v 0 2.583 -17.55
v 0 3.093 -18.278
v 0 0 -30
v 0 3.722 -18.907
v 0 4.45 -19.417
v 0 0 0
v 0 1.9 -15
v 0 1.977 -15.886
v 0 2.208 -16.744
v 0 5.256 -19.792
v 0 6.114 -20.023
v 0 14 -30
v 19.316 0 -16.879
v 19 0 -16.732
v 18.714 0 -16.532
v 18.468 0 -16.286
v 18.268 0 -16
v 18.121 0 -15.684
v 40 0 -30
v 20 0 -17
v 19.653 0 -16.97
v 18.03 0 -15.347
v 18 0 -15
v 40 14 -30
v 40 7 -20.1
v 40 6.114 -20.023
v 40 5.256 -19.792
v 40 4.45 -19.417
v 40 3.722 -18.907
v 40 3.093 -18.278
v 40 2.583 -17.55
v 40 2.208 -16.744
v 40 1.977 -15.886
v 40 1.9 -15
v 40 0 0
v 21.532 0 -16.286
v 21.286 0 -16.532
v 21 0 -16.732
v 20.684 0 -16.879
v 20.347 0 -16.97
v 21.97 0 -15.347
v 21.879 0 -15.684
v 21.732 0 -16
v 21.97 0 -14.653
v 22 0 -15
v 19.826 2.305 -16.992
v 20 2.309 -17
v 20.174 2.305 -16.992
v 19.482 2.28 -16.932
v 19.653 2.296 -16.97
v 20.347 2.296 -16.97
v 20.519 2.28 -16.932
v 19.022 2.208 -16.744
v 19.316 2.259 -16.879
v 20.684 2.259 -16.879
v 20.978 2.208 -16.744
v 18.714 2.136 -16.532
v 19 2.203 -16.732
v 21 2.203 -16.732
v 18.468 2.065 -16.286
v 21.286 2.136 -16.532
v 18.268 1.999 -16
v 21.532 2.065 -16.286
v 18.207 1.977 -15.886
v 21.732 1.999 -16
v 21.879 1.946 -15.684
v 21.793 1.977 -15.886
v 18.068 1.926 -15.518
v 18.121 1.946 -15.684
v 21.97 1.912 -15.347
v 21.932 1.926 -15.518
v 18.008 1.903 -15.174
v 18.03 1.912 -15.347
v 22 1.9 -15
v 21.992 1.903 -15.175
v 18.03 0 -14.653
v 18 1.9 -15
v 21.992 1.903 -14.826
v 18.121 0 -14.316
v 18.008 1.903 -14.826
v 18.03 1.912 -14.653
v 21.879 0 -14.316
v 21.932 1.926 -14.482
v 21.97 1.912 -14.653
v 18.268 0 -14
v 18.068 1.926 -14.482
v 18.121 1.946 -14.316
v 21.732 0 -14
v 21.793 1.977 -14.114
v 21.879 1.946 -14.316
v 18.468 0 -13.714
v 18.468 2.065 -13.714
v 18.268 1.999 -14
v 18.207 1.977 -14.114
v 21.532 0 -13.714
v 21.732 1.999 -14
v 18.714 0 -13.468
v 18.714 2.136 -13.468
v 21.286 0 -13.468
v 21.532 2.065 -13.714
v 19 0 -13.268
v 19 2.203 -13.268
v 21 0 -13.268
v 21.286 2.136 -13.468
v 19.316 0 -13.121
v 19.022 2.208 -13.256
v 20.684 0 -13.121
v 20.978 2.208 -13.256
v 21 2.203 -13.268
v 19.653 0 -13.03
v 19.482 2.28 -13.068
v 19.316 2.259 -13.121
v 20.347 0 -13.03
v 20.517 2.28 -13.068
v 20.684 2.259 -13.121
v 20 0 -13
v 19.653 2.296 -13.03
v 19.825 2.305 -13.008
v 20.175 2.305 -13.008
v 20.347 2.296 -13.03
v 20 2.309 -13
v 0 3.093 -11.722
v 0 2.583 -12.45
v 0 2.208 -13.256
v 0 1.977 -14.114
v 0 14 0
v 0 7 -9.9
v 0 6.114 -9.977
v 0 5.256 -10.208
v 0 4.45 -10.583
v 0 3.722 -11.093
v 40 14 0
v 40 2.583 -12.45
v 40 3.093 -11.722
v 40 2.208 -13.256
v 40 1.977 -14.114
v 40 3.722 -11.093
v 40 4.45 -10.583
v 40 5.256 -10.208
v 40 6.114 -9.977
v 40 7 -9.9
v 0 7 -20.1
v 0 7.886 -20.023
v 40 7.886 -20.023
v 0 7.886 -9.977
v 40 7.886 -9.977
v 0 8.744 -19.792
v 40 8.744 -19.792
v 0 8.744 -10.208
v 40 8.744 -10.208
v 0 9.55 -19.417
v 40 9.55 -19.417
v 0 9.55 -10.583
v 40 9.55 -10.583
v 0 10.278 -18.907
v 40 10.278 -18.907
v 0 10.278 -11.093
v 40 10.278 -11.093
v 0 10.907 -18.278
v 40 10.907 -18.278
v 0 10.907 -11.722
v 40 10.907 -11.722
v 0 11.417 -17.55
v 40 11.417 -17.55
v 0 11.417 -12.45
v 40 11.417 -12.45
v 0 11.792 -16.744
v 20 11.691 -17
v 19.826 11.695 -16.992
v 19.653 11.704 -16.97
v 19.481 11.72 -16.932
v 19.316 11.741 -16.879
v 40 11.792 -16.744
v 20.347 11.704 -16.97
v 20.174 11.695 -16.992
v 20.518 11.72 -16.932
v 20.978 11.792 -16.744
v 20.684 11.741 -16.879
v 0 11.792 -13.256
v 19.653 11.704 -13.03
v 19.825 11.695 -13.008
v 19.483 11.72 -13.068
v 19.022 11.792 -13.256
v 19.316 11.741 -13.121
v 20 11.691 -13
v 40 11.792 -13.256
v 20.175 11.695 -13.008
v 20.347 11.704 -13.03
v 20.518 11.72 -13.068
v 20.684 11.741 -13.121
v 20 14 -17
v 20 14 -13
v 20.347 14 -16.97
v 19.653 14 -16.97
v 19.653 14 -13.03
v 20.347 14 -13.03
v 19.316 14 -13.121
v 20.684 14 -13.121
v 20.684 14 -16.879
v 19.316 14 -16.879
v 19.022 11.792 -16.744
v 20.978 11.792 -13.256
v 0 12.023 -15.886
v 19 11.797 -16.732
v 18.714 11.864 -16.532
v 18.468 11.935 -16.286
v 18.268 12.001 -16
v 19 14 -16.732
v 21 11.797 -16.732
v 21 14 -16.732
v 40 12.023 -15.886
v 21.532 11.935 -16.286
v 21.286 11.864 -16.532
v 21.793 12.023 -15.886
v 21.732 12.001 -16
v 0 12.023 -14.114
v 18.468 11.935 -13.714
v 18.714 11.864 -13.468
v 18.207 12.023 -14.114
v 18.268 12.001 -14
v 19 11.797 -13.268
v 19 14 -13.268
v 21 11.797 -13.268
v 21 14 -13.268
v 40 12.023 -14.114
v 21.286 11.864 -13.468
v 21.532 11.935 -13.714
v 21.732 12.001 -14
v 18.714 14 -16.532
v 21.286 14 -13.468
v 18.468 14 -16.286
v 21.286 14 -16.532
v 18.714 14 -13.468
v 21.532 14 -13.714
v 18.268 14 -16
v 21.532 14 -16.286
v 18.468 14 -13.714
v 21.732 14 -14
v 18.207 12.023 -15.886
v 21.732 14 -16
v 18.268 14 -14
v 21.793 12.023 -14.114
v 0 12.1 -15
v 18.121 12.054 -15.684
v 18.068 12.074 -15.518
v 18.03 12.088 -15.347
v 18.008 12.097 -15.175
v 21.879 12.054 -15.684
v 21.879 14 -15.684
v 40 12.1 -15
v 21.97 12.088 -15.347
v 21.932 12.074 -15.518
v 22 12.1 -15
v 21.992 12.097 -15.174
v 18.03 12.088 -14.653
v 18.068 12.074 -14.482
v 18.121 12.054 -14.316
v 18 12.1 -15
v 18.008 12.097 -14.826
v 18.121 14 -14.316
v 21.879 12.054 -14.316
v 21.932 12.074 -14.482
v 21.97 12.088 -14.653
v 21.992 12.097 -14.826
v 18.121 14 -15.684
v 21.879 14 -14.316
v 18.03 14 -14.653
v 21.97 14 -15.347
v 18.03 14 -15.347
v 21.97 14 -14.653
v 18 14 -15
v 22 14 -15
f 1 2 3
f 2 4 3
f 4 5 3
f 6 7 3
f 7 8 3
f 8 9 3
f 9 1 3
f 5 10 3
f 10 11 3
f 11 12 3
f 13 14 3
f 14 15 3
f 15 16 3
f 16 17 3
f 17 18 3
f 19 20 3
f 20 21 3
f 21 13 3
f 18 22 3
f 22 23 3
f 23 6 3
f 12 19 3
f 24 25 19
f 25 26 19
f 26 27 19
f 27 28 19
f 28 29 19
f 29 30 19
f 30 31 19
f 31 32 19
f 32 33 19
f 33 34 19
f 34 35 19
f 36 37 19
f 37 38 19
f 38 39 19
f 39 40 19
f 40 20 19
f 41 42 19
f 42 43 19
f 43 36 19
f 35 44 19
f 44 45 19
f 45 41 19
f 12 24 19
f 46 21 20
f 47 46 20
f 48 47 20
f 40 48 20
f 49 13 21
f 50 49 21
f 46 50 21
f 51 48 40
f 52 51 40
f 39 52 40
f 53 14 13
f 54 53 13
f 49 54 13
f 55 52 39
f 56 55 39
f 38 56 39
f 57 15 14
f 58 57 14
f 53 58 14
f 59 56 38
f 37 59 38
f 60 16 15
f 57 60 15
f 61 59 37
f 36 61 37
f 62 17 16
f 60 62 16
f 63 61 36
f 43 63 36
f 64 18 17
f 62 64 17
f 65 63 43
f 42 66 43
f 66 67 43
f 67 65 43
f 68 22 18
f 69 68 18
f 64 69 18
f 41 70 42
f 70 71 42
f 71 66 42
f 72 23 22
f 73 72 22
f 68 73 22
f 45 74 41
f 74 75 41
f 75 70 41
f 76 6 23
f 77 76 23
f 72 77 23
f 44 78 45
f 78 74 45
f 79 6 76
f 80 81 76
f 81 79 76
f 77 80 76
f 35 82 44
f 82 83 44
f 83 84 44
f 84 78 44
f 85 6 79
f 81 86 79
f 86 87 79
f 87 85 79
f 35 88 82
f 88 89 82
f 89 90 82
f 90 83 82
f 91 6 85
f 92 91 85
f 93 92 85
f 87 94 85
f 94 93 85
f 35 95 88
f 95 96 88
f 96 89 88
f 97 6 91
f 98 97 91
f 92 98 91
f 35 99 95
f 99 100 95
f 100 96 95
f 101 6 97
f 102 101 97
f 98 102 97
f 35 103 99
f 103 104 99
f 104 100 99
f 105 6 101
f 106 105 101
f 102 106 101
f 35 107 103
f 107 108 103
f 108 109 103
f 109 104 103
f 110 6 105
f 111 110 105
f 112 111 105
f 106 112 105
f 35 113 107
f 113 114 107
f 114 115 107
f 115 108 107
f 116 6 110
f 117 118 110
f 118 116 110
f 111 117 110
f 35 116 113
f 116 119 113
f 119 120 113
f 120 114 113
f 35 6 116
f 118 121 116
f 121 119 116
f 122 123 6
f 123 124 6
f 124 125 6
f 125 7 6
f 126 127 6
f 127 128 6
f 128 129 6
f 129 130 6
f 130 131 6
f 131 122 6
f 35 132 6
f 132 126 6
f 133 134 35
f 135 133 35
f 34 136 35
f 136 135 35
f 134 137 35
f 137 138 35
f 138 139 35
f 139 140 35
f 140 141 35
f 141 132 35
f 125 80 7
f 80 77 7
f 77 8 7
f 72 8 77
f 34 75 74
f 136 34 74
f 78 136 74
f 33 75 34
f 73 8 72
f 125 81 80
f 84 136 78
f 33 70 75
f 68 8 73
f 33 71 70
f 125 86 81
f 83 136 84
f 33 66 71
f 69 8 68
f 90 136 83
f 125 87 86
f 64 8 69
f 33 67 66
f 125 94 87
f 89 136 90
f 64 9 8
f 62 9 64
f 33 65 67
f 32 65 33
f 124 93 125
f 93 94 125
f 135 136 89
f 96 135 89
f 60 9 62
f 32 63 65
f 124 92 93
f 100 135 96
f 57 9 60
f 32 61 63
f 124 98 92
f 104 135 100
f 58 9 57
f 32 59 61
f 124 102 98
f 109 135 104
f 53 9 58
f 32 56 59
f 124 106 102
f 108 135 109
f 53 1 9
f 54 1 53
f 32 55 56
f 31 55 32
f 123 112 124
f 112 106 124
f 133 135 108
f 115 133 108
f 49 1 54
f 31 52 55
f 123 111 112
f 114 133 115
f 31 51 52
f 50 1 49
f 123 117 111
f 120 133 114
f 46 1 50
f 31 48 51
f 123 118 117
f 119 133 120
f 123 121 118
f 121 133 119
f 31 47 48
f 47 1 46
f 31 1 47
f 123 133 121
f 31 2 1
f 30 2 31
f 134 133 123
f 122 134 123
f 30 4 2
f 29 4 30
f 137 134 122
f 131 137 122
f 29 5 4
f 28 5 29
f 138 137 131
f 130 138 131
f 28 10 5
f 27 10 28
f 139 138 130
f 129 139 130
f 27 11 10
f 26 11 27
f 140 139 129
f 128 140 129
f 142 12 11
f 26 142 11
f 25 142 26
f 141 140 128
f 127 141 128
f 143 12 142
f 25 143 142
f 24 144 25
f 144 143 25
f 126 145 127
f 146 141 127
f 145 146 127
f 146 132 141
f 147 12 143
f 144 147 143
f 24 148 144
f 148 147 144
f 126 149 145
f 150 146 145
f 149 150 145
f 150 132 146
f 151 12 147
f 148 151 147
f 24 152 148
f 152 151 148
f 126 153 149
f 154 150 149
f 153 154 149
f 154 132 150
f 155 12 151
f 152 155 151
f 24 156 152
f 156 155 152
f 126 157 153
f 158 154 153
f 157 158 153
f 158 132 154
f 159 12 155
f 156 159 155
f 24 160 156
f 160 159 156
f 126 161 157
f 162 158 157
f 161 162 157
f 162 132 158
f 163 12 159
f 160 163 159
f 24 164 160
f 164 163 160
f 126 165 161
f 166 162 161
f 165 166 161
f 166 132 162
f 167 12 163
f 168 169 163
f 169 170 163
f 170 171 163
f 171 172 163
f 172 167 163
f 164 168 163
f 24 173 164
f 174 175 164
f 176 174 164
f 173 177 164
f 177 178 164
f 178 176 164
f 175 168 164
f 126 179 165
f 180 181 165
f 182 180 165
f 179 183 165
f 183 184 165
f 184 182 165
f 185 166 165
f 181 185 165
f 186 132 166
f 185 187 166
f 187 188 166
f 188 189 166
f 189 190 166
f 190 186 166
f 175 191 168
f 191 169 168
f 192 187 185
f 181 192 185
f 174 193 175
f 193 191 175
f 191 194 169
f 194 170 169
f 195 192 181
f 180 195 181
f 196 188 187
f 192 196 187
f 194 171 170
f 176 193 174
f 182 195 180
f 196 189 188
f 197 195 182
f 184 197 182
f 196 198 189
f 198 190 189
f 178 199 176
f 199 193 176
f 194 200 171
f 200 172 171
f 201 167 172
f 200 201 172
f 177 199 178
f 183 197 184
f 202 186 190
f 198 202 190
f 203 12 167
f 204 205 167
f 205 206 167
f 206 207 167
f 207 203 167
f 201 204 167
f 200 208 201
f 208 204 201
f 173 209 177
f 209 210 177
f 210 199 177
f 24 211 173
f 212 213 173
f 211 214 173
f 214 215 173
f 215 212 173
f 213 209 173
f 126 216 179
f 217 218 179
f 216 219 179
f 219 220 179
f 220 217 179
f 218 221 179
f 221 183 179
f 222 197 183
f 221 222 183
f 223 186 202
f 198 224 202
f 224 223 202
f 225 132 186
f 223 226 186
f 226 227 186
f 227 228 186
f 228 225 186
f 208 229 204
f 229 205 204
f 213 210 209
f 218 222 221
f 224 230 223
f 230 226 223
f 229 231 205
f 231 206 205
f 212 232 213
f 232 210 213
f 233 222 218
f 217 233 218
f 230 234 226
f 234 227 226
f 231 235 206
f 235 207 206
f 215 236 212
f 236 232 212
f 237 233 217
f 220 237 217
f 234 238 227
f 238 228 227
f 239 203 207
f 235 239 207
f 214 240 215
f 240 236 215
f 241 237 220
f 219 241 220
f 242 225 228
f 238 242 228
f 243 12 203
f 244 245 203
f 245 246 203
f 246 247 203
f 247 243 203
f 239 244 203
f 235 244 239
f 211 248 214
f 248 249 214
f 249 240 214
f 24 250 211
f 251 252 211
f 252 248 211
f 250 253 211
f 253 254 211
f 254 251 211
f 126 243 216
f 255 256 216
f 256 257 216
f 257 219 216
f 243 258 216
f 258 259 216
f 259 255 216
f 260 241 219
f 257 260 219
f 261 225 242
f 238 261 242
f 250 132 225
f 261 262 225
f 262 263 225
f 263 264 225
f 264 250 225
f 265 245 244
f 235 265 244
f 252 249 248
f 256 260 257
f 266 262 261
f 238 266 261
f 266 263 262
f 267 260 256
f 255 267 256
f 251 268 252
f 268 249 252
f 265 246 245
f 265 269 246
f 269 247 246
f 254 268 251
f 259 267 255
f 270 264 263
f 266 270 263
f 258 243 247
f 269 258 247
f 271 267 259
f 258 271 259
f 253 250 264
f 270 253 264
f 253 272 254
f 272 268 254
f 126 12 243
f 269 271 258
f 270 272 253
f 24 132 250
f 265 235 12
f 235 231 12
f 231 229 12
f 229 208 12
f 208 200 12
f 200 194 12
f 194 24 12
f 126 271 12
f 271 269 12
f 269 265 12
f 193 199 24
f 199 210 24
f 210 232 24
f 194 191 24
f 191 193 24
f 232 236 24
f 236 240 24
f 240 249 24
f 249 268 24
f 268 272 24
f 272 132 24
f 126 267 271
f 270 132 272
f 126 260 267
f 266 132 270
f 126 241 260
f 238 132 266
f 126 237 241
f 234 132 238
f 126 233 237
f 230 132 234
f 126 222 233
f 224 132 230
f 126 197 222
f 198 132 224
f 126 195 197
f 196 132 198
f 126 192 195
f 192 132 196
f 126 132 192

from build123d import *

# Parameters (mm, degrees)
SKETCH_2_W          = 30
SKETCH_2_H          = 14
SKETCH_2_R          = 5.1
EXTRUDE_1_DEPTH     = 40
SKETCH_3_R          = 2
CUT_EXTRUDE_1_DEPTH = 52.923019943


with BuildPart() as part:
    # 草圖2 → 填料-伸長1 (new body)
    with BuildSketch(Plane(origin=(0, 0, 0), x_dir=(0, 0, -1), z_dir=(1, 0, 0))):
        with Locations((15, 7)):
            Rectangle(SKETCH_2_W, SKETCH_2_H)
        with Locations((15, 7)):
            Circle(SKETCH_2_R, mode=Mode.SUBTRACT)
    extrude(amount=EXTRUDE_1_DEPTH)

    # 草圖3 → 除料-伸長1 (cut, through all)
    with BuildSketch(Plane(origin=(0, 14, 0), x_dir=(1, 0, 0), z_dir=(0, 1, 0))):
        with Locations(Location((20, 15, 0), (0, 0, 270))):
            Circle(SKETCH_3_R)
    extrude(amount=-CUT_EXTRUDE_1_DEPTH, mode=Mode.SUBTRACT)


solid = part.part
